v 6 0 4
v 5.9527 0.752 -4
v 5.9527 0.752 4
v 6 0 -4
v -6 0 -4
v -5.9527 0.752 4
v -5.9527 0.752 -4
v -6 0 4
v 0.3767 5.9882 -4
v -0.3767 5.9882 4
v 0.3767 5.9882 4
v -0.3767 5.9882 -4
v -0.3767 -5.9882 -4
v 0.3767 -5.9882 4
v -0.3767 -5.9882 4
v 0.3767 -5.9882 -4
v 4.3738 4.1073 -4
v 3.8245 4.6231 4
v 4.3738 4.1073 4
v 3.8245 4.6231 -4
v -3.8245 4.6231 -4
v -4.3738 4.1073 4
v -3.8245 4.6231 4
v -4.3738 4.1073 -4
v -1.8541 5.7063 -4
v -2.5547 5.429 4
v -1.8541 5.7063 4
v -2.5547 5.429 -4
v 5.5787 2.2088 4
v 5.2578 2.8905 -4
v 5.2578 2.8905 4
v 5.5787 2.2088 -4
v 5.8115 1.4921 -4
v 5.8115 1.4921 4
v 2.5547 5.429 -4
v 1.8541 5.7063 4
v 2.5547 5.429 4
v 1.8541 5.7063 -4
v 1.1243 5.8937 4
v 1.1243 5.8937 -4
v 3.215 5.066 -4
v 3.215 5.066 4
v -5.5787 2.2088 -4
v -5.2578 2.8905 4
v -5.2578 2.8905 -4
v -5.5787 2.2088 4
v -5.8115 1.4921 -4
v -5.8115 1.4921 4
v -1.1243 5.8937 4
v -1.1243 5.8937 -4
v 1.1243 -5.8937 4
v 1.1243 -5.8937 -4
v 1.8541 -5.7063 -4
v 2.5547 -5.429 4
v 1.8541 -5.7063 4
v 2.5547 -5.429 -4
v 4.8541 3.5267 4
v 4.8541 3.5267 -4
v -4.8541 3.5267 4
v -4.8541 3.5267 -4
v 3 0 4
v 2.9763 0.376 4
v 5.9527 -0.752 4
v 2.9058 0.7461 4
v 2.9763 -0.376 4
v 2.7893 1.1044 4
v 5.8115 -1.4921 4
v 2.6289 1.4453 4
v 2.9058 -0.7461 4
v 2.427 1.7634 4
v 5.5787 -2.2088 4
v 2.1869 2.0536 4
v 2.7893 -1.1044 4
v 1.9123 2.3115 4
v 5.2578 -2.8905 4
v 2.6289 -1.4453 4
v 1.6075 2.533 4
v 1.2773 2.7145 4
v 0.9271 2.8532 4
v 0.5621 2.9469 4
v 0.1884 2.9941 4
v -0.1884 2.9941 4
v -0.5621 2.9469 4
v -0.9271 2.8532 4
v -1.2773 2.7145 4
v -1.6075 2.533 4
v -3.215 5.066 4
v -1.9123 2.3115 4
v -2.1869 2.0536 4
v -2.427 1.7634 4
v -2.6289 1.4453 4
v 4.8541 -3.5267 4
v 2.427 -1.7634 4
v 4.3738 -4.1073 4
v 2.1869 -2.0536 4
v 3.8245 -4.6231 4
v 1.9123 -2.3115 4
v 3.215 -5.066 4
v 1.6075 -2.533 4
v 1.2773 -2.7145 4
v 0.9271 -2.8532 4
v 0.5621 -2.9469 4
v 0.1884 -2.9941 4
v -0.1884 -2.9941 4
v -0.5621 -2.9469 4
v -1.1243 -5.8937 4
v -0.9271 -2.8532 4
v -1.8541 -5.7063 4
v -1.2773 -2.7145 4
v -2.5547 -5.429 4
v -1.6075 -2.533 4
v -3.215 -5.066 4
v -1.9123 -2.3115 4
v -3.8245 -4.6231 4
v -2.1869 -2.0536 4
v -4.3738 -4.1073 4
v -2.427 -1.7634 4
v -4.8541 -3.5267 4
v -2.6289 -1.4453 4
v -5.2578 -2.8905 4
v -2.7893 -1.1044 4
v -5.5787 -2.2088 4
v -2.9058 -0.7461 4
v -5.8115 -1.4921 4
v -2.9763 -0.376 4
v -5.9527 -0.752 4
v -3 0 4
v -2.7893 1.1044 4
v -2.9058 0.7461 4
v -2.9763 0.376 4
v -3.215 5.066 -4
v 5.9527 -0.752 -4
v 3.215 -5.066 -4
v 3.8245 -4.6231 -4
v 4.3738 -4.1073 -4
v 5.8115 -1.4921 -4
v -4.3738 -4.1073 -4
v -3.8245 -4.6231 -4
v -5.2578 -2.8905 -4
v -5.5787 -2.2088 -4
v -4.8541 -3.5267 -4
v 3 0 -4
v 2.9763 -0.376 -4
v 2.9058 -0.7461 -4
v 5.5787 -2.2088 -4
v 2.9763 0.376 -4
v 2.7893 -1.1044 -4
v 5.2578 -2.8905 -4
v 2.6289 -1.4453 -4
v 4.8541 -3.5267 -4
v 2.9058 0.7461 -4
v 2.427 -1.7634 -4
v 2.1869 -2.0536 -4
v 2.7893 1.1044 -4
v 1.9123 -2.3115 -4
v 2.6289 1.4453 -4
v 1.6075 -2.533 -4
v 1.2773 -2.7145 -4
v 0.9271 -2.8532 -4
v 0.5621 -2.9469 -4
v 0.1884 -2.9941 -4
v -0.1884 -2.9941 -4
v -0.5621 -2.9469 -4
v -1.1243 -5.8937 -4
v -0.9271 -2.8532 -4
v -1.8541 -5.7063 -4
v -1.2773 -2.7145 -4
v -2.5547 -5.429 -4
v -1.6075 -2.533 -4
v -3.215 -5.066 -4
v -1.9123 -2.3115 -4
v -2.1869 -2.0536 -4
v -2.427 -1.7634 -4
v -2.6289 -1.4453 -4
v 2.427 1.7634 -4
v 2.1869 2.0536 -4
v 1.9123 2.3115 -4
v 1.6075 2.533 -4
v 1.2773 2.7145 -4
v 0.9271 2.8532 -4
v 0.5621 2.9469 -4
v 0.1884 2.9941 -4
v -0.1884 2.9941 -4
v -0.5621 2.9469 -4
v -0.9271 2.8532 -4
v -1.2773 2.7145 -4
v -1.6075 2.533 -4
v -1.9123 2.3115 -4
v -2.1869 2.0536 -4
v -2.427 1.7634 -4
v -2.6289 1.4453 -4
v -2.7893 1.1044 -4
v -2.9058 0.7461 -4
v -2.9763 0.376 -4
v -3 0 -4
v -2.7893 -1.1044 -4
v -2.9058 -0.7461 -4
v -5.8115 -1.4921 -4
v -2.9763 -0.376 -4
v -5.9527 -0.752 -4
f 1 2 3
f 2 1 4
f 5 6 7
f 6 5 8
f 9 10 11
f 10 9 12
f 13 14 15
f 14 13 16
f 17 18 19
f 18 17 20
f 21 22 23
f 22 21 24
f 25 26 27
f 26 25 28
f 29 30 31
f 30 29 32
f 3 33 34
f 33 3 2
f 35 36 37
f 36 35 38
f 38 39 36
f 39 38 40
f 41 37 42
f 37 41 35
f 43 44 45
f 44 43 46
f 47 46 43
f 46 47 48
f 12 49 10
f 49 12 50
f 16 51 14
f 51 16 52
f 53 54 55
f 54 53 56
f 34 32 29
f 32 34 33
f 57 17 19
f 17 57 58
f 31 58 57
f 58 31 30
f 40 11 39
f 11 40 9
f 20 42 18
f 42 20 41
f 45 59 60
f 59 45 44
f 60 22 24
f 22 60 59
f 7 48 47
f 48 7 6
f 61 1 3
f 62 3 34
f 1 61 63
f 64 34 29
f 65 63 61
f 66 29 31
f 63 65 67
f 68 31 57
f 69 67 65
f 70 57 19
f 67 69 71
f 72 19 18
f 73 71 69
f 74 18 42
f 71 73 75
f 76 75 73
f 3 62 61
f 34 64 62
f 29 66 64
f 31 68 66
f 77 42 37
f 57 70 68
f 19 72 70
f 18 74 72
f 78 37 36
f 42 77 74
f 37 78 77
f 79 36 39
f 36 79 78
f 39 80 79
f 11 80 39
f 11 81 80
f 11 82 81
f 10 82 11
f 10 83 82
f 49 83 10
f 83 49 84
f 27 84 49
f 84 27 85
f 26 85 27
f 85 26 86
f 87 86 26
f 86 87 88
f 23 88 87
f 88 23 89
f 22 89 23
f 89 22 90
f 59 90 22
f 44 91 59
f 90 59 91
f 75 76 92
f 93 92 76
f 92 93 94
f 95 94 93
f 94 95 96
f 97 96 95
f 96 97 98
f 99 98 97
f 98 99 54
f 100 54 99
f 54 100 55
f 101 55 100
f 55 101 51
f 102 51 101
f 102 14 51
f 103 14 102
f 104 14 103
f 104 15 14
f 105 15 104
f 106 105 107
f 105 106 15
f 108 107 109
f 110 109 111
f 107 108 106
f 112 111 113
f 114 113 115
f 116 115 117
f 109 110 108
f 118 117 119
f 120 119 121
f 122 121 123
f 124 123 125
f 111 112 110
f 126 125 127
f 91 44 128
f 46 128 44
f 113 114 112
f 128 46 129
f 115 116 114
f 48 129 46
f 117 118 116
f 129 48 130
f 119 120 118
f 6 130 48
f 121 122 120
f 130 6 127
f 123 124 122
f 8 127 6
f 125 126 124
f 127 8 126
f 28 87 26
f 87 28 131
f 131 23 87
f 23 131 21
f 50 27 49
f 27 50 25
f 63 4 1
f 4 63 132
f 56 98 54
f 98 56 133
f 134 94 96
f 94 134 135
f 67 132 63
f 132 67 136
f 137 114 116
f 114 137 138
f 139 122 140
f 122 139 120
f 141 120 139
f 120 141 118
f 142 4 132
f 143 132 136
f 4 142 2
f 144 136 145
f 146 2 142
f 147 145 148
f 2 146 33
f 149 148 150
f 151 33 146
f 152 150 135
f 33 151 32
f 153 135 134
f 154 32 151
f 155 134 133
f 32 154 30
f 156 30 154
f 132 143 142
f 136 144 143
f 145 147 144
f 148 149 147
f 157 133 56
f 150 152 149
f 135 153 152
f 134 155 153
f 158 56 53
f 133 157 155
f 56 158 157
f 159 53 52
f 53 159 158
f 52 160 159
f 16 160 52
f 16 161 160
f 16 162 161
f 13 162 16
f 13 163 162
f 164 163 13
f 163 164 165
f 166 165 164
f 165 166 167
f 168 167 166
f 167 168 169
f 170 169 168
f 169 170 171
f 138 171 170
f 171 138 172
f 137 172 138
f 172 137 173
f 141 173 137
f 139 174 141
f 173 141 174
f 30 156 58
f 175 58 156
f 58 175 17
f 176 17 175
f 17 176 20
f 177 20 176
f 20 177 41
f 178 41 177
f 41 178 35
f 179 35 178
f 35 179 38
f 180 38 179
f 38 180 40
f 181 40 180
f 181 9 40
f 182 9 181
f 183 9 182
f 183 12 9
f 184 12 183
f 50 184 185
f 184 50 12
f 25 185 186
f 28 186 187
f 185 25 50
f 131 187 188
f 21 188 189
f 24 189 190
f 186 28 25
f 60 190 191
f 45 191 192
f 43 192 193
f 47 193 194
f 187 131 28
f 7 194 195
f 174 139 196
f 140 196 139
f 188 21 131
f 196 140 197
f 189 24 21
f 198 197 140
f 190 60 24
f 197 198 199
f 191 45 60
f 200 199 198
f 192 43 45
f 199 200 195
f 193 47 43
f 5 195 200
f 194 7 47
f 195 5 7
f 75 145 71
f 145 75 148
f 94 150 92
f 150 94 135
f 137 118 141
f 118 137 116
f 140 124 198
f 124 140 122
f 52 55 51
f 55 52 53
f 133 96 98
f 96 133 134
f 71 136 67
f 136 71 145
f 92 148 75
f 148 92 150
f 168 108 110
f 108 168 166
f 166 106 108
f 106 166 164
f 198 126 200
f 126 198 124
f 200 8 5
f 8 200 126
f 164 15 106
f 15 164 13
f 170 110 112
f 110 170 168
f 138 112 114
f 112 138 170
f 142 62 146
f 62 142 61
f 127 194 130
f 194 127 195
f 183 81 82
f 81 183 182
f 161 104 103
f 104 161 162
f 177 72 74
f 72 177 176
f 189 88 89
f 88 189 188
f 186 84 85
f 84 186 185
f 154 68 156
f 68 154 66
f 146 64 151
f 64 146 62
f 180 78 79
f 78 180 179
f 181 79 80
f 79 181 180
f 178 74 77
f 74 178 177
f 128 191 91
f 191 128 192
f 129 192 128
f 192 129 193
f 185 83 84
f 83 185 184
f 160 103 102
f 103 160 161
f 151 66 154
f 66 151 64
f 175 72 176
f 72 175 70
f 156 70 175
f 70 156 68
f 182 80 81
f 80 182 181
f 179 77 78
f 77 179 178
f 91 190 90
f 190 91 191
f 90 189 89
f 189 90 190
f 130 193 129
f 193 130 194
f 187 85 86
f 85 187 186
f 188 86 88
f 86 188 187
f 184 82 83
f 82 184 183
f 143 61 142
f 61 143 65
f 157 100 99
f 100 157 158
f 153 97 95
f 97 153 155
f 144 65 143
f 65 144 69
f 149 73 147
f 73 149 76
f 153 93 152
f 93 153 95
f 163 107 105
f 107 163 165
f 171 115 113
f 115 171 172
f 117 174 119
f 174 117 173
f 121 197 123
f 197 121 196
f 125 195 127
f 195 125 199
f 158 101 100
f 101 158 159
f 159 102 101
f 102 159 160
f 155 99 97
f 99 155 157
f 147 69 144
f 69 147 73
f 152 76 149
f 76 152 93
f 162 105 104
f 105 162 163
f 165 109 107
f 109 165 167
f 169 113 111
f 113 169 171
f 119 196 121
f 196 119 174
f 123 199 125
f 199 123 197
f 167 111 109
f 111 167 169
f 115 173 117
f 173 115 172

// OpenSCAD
$fn = 50;


difference() {
	union() {
		translate(v = [0, 0, -4.0000000000]) {
			cylinder(h = 8, r = 6.0000000000);
		}
	}
	union() {
		translate(v = [0, 0, -100.0000000000]) {
			cylinder(h = 200, r = 3);
		}
	}
}
